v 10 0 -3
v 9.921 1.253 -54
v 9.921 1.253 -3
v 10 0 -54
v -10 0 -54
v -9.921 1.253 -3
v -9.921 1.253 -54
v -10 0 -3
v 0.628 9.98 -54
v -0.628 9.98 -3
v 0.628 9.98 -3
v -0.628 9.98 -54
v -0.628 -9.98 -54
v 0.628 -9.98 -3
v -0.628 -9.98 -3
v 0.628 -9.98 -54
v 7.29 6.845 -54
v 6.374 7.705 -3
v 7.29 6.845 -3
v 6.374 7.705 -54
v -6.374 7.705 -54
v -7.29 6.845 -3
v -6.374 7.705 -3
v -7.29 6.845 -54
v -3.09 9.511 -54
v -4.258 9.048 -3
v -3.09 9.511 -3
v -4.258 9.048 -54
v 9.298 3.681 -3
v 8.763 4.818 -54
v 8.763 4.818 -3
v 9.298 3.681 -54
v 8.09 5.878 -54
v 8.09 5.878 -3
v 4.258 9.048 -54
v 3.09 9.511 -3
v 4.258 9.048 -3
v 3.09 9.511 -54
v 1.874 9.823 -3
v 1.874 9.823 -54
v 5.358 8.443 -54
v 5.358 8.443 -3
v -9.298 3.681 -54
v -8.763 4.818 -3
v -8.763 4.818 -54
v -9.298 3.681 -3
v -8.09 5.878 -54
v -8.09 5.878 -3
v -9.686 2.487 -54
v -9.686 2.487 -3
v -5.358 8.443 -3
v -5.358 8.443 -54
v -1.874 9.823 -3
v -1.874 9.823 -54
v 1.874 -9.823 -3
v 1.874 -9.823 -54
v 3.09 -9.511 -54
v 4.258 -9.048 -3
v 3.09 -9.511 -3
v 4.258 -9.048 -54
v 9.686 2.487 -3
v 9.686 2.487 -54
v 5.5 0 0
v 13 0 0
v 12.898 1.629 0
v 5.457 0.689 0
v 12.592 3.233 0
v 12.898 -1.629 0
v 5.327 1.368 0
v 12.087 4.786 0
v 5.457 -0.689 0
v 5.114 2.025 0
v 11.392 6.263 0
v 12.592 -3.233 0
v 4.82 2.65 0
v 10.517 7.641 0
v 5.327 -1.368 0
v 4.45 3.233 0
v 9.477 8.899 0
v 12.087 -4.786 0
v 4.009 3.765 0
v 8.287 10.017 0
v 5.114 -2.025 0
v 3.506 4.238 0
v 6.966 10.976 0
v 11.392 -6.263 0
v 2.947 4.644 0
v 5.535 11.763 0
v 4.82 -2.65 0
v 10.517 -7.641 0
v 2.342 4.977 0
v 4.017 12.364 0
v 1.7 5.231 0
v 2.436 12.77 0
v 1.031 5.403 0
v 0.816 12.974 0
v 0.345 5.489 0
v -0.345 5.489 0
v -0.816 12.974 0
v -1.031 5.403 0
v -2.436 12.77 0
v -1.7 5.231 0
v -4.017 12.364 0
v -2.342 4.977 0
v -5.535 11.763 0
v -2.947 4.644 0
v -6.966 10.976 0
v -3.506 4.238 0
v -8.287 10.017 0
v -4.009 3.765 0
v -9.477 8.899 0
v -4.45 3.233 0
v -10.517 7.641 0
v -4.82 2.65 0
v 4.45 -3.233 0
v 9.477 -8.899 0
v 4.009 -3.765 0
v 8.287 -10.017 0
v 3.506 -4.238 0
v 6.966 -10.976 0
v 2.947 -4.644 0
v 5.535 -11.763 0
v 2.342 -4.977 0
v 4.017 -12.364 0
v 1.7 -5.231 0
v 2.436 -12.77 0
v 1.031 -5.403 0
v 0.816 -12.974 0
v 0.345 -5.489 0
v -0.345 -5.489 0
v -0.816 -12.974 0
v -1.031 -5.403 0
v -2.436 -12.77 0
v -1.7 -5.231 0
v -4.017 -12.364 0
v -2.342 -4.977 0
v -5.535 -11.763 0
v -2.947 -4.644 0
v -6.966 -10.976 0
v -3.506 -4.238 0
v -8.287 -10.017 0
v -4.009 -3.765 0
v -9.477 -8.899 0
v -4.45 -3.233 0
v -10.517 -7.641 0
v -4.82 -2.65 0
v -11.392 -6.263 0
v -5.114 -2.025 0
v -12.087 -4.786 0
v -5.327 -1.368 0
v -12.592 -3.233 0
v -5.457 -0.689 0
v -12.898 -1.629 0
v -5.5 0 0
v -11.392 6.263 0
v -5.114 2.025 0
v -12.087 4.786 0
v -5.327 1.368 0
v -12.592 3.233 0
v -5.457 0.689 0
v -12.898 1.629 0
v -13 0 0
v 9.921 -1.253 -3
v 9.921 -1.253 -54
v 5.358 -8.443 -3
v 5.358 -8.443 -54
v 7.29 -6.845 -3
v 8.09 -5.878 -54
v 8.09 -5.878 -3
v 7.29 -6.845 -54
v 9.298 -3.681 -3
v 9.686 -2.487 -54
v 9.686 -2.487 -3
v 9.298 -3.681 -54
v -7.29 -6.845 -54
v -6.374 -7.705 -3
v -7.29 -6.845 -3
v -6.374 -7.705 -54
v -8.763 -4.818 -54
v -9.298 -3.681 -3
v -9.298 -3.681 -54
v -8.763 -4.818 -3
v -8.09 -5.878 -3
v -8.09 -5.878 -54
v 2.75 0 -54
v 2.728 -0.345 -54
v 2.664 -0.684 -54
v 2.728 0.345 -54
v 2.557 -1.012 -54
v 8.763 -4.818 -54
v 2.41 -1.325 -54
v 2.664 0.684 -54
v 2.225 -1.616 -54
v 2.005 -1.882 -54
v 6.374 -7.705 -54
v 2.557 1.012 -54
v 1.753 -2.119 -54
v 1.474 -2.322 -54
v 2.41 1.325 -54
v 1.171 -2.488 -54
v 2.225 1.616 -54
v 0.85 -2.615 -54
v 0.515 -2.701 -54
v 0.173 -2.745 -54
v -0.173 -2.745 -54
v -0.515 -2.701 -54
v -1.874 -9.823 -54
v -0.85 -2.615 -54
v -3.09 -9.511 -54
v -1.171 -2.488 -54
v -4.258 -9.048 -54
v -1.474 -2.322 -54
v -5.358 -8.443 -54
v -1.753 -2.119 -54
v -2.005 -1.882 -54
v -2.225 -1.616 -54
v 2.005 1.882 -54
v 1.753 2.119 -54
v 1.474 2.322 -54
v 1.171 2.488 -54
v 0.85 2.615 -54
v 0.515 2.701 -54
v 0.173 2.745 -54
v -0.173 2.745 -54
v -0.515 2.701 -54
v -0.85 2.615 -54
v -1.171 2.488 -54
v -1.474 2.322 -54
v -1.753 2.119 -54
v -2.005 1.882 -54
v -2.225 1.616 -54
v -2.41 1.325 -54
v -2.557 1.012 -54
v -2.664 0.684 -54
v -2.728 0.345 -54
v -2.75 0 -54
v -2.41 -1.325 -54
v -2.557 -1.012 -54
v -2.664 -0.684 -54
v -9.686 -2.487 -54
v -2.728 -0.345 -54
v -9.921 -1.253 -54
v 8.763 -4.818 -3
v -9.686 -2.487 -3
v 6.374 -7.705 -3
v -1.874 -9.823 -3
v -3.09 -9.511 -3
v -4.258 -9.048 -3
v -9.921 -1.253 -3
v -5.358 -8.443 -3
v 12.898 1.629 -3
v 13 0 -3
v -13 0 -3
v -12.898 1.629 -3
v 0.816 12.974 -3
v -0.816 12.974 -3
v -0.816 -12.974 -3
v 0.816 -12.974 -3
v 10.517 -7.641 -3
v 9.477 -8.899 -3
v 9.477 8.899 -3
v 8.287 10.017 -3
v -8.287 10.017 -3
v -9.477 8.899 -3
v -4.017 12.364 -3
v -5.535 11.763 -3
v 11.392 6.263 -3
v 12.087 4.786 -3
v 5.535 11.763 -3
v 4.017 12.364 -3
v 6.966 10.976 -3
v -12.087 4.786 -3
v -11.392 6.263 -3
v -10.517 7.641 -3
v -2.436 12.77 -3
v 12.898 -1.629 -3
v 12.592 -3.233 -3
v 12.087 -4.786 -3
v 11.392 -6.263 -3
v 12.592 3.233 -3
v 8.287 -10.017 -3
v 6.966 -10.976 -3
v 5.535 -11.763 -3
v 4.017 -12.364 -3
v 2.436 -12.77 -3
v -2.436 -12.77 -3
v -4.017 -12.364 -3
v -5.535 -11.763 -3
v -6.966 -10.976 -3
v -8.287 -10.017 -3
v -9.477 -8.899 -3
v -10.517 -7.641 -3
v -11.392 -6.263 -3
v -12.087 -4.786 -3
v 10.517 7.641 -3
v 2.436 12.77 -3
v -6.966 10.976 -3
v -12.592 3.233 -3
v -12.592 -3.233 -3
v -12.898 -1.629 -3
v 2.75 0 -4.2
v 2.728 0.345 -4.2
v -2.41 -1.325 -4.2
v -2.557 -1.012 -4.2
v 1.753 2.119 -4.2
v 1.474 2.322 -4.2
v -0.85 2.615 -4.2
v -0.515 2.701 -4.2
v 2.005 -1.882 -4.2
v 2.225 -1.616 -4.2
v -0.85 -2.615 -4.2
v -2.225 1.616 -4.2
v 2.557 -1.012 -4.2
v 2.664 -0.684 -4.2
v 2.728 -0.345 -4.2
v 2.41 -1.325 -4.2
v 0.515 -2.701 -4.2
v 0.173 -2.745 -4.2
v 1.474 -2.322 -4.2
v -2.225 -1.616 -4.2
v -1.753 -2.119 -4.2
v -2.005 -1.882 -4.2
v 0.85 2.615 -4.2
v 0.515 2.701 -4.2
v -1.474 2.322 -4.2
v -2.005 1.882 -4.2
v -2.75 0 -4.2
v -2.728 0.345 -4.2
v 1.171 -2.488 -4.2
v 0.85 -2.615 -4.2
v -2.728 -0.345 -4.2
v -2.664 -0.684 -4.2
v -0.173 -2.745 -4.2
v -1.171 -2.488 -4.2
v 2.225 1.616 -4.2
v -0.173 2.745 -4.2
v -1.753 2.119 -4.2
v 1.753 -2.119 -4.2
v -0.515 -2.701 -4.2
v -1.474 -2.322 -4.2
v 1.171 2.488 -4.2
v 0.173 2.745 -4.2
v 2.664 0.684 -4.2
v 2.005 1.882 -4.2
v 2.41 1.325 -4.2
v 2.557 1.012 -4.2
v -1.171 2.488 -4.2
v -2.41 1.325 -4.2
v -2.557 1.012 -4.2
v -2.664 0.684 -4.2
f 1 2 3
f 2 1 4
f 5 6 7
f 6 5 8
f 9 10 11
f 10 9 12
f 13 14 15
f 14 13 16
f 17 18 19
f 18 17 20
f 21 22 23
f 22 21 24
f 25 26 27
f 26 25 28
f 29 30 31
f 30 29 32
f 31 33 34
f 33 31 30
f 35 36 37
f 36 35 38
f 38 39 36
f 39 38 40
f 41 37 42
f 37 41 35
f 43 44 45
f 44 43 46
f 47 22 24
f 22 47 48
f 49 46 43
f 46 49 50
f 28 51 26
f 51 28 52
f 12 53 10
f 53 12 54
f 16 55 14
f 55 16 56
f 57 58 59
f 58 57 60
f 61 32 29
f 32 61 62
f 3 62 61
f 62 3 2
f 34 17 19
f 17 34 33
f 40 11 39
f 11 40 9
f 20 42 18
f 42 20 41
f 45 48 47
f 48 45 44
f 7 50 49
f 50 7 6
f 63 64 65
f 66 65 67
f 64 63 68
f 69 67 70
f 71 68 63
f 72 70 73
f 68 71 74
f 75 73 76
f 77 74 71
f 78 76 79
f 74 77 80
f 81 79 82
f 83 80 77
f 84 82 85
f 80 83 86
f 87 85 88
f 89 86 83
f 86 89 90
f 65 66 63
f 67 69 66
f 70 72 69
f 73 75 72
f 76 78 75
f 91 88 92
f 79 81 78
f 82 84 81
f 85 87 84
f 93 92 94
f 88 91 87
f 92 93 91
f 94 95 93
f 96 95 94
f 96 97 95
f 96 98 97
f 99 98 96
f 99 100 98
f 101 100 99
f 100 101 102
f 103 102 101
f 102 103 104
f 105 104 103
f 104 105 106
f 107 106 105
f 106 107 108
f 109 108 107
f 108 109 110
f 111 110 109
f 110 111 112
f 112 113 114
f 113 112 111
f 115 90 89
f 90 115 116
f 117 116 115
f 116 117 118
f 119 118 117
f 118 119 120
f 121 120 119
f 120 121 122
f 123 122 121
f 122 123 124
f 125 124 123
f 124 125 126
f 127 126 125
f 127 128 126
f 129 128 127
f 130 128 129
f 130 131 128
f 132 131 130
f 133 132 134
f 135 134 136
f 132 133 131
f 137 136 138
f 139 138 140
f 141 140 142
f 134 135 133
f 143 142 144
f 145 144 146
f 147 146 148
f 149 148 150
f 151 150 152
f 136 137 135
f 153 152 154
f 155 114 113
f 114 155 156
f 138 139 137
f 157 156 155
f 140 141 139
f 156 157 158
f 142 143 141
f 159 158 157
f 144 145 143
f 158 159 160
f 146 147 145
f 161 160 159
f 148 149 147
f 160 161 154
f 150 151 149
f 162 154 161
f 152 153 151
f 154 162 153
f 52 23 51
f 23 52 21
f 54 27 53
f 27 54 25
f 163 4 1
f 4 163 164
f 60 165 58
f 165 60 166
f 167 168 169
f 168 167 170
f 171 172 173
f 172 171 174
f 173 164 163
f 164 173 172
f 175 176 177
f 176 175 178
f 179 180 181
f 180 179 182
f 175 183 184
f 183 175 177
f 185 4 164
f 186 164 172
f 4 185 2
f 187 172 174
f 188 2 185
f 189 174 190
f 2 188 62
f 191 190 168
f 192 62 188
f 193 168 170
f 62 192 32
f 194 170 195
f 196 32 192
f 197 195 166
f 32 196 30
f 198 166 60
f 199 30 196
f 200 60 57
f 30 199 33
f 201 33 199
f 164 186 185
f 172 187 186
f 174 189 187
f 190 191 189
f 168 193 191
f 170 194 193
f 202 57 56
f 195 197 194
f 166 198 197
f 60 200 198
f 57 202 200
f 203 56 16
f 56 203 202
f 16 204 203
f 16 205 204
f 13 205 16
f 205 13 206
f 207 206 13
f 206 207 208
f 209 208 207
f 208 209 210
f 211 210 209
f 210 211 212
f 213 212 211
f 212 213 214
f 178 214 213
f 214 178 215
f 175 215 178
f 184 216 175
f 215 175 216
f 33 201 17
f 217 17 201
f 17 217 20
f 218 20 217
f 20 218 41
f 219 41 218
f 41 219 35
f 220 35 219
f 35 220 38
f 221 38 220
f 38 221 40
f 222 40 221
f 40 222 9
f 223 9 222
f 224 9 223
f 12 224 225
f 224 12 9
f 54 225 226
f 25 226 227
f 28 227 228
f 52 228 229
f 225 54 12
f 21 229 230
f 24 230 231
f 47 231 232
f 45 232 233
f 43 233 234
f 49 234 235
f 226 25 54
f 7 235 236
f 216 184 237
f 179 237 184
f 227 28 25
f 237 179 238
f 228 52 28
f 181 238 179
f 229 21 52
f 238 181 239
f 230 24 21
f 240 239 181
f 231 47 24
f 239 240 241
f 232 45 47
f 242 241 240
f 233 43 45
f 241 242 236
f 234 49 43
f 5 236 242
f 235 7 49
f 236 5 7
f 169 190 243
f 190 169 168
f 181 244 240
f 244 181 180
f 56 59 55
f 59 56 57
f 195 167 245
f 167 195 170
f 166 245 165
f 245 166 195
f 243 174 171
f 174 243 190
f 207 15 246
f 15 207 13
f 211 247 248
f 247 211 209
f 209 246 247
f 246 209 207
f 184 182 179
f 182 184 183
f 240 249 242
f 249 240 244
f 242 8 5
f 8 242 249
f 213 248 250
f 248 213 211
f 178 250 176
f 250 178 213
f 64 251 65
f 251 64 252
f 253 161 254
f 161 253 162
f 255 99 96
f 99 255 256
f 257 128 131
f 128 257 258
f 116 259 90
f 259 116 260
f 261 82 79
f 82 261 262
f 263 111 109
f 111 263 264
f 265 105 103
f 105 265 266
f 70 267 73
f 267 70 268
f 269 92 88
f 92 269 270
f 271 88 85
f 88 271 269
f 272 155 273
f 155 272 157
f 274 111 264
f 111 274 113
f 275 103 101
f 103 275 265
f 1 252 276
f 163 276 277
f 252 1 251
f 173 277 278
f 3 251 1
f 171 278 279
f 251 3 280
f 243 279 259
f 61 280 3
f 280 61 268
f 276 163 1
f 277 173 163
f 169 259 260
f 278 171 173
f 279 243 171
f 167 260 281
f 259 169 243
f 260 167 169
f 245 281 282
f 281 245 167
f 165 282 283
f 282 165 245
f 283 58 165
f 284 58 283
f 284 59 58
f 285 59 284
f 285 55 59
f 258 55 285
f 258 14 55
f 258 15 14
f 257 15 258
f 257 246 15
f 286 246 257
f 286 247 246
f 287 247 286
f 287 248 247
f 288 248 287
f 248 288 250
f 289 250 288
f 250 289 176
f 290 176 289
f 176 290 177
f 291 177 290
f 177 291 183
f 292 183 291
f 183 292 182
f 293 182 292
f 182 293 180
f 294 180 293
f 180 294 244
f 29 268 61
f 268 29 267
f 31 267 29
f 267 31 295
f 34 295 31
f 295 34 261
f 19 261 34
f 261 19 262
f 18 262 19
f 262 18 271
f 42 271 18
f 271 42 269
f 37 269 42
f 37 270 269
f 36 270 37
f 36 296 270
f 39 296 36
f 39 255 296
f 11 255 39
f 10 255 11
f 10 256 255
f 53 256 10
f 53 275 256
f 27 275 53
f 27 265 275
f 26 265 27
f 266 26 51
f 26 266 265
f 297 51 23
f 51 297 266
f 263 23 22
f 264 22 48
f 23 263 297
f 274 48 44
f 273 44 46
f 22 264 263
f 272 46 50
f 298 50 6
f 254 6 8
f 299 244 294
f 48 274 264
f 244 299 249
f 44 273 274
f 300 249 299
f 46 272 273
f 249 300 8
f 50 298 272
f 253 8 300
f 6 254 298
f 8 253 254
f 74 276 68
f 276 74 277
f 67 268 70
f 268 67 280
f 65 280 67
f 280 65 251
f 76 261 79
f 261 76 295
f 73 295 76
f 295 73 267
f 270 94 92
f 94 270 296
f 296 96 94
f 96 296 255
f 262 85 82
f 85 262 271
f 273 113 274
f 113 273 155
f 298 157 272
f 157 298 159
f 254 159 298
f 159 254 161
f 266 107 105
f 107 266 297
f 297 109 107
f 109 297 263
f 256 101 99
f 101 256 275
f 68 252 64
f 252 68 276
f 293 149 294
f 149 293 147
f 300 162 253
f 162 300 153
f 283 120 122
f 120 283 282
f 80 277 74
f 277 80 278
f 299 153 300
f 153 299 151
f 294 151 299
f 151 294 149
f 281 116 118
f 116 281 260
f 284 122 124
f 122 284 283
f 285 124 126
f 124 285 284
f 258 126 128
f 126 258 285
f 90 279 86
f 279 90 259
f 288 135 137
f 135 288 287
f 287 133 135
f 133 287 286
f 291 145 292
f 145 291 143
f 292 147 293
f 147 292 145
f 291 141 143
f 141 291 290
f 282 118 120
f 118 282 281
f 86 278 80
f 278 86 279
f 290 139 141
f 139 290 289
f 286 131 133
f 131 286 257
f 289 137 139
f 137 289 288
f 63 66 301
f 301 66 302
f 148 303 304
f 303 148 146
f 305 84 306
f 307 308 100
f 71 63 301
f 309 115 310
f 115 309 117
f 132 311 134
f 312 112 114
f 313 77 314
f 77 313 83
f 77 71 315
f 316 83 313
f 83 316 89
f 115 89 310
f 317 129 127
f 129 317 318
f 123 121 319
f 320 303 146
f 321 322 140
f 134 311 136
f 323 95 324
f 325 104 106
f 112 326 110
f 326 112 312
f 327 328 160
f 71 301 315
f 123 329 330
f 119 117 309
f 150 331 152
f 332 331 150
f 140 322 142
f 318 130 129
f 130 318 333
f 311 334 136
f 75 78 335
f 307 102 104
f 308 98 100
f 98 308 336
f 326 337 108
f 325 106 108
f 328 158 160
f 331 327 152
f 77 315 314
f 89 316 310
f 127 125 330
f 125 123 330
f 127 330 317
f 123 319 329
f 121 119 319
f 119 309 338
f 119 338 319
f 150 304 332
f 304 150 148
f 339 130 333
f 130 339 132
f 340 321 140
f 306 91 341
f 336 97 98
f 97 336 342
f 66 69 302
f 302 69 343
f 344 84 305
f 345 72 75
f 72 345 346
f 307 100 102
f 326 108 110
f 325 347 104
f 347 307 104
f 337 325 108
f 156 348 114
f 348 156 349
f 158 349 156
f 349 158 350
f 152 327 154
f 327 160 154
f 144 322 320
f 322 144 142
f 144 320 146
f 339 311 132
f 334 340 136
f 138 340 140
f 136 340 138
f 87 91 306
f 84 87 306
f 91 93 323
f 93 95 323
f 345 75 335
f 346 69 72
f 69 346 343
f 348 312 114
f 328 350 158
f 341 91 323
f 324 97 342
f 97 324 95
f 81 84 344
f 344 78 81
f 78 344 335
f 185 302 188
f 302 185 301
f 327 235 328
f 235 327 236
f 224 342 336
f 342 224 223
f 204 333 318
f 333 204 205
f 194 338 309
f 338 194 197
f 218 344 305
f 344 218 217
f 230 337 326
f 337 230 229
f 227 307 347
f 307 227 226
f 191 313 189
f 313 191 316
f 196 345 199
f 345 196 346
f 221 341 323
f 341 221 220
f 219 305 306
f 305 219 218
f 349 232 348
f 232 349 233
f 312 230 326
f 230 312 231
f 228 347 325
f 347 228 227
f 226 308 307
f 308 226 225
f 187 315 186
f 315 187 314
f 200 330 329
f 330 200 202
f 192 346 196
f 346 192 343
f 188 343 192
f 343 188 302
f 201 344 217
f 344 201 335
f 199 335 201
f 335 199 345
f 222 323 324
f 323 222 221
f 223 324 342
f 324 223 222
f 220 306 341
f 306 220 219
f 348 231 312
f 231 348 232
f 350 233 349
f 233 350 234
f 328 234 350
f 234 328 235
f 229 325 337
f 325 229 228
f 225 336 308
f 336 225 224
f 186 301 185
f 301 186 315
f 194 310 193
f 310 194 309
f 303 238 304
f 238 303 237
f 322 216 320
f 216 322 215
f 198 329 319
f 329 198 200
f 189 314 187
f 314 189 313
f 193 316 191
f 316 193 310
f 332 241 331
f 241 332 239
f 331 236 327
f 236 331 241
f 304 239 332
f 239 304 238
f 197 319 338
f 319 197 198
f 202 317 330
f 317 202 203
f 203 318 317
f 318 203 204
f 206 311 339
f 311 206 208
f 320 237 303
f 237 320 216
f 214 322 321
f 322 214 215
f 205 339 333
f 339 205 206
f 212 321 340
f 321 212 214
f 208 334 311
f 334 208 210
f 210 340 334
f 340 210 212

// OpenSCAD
$fn = 50;


difference() {
	union() {
		translate(v = [0, 0, -54.0000000000]) {
			cylinder(h = 54, r = 10.0000000000);
		}
		translate(v = [0, 0, -3.0000000000]) {
			cylinder(h = 3, r = 13.0000000000);
		}
	}
	union() {
		translate(v = [0, 0, 0]) {
			rotate(a = [0, 0, 0]) {
				difference() {
					union() {
						#translate(v = [0, 0, -54.0000000000]) {
							cylinder(h = 54, r = 2.2500000000);
						}
						#translate(v = [0, 0, -4.2000000000]) {
							cylinder(h = 4.2000000000, r1 = 2.7500000000, r2 = 5.5000000000);
						}
						#translate(v = [0, 0, -54.0000000000]) {
							cylinder(h = 54, r = 2.7500000000);
						}
						#translate(v = [0, 0, -54.0000000000]) {
							cylinder(h = 54, r = 2.2500000000);
						}
					}
					union();
				}
			}
		}
	}
}
